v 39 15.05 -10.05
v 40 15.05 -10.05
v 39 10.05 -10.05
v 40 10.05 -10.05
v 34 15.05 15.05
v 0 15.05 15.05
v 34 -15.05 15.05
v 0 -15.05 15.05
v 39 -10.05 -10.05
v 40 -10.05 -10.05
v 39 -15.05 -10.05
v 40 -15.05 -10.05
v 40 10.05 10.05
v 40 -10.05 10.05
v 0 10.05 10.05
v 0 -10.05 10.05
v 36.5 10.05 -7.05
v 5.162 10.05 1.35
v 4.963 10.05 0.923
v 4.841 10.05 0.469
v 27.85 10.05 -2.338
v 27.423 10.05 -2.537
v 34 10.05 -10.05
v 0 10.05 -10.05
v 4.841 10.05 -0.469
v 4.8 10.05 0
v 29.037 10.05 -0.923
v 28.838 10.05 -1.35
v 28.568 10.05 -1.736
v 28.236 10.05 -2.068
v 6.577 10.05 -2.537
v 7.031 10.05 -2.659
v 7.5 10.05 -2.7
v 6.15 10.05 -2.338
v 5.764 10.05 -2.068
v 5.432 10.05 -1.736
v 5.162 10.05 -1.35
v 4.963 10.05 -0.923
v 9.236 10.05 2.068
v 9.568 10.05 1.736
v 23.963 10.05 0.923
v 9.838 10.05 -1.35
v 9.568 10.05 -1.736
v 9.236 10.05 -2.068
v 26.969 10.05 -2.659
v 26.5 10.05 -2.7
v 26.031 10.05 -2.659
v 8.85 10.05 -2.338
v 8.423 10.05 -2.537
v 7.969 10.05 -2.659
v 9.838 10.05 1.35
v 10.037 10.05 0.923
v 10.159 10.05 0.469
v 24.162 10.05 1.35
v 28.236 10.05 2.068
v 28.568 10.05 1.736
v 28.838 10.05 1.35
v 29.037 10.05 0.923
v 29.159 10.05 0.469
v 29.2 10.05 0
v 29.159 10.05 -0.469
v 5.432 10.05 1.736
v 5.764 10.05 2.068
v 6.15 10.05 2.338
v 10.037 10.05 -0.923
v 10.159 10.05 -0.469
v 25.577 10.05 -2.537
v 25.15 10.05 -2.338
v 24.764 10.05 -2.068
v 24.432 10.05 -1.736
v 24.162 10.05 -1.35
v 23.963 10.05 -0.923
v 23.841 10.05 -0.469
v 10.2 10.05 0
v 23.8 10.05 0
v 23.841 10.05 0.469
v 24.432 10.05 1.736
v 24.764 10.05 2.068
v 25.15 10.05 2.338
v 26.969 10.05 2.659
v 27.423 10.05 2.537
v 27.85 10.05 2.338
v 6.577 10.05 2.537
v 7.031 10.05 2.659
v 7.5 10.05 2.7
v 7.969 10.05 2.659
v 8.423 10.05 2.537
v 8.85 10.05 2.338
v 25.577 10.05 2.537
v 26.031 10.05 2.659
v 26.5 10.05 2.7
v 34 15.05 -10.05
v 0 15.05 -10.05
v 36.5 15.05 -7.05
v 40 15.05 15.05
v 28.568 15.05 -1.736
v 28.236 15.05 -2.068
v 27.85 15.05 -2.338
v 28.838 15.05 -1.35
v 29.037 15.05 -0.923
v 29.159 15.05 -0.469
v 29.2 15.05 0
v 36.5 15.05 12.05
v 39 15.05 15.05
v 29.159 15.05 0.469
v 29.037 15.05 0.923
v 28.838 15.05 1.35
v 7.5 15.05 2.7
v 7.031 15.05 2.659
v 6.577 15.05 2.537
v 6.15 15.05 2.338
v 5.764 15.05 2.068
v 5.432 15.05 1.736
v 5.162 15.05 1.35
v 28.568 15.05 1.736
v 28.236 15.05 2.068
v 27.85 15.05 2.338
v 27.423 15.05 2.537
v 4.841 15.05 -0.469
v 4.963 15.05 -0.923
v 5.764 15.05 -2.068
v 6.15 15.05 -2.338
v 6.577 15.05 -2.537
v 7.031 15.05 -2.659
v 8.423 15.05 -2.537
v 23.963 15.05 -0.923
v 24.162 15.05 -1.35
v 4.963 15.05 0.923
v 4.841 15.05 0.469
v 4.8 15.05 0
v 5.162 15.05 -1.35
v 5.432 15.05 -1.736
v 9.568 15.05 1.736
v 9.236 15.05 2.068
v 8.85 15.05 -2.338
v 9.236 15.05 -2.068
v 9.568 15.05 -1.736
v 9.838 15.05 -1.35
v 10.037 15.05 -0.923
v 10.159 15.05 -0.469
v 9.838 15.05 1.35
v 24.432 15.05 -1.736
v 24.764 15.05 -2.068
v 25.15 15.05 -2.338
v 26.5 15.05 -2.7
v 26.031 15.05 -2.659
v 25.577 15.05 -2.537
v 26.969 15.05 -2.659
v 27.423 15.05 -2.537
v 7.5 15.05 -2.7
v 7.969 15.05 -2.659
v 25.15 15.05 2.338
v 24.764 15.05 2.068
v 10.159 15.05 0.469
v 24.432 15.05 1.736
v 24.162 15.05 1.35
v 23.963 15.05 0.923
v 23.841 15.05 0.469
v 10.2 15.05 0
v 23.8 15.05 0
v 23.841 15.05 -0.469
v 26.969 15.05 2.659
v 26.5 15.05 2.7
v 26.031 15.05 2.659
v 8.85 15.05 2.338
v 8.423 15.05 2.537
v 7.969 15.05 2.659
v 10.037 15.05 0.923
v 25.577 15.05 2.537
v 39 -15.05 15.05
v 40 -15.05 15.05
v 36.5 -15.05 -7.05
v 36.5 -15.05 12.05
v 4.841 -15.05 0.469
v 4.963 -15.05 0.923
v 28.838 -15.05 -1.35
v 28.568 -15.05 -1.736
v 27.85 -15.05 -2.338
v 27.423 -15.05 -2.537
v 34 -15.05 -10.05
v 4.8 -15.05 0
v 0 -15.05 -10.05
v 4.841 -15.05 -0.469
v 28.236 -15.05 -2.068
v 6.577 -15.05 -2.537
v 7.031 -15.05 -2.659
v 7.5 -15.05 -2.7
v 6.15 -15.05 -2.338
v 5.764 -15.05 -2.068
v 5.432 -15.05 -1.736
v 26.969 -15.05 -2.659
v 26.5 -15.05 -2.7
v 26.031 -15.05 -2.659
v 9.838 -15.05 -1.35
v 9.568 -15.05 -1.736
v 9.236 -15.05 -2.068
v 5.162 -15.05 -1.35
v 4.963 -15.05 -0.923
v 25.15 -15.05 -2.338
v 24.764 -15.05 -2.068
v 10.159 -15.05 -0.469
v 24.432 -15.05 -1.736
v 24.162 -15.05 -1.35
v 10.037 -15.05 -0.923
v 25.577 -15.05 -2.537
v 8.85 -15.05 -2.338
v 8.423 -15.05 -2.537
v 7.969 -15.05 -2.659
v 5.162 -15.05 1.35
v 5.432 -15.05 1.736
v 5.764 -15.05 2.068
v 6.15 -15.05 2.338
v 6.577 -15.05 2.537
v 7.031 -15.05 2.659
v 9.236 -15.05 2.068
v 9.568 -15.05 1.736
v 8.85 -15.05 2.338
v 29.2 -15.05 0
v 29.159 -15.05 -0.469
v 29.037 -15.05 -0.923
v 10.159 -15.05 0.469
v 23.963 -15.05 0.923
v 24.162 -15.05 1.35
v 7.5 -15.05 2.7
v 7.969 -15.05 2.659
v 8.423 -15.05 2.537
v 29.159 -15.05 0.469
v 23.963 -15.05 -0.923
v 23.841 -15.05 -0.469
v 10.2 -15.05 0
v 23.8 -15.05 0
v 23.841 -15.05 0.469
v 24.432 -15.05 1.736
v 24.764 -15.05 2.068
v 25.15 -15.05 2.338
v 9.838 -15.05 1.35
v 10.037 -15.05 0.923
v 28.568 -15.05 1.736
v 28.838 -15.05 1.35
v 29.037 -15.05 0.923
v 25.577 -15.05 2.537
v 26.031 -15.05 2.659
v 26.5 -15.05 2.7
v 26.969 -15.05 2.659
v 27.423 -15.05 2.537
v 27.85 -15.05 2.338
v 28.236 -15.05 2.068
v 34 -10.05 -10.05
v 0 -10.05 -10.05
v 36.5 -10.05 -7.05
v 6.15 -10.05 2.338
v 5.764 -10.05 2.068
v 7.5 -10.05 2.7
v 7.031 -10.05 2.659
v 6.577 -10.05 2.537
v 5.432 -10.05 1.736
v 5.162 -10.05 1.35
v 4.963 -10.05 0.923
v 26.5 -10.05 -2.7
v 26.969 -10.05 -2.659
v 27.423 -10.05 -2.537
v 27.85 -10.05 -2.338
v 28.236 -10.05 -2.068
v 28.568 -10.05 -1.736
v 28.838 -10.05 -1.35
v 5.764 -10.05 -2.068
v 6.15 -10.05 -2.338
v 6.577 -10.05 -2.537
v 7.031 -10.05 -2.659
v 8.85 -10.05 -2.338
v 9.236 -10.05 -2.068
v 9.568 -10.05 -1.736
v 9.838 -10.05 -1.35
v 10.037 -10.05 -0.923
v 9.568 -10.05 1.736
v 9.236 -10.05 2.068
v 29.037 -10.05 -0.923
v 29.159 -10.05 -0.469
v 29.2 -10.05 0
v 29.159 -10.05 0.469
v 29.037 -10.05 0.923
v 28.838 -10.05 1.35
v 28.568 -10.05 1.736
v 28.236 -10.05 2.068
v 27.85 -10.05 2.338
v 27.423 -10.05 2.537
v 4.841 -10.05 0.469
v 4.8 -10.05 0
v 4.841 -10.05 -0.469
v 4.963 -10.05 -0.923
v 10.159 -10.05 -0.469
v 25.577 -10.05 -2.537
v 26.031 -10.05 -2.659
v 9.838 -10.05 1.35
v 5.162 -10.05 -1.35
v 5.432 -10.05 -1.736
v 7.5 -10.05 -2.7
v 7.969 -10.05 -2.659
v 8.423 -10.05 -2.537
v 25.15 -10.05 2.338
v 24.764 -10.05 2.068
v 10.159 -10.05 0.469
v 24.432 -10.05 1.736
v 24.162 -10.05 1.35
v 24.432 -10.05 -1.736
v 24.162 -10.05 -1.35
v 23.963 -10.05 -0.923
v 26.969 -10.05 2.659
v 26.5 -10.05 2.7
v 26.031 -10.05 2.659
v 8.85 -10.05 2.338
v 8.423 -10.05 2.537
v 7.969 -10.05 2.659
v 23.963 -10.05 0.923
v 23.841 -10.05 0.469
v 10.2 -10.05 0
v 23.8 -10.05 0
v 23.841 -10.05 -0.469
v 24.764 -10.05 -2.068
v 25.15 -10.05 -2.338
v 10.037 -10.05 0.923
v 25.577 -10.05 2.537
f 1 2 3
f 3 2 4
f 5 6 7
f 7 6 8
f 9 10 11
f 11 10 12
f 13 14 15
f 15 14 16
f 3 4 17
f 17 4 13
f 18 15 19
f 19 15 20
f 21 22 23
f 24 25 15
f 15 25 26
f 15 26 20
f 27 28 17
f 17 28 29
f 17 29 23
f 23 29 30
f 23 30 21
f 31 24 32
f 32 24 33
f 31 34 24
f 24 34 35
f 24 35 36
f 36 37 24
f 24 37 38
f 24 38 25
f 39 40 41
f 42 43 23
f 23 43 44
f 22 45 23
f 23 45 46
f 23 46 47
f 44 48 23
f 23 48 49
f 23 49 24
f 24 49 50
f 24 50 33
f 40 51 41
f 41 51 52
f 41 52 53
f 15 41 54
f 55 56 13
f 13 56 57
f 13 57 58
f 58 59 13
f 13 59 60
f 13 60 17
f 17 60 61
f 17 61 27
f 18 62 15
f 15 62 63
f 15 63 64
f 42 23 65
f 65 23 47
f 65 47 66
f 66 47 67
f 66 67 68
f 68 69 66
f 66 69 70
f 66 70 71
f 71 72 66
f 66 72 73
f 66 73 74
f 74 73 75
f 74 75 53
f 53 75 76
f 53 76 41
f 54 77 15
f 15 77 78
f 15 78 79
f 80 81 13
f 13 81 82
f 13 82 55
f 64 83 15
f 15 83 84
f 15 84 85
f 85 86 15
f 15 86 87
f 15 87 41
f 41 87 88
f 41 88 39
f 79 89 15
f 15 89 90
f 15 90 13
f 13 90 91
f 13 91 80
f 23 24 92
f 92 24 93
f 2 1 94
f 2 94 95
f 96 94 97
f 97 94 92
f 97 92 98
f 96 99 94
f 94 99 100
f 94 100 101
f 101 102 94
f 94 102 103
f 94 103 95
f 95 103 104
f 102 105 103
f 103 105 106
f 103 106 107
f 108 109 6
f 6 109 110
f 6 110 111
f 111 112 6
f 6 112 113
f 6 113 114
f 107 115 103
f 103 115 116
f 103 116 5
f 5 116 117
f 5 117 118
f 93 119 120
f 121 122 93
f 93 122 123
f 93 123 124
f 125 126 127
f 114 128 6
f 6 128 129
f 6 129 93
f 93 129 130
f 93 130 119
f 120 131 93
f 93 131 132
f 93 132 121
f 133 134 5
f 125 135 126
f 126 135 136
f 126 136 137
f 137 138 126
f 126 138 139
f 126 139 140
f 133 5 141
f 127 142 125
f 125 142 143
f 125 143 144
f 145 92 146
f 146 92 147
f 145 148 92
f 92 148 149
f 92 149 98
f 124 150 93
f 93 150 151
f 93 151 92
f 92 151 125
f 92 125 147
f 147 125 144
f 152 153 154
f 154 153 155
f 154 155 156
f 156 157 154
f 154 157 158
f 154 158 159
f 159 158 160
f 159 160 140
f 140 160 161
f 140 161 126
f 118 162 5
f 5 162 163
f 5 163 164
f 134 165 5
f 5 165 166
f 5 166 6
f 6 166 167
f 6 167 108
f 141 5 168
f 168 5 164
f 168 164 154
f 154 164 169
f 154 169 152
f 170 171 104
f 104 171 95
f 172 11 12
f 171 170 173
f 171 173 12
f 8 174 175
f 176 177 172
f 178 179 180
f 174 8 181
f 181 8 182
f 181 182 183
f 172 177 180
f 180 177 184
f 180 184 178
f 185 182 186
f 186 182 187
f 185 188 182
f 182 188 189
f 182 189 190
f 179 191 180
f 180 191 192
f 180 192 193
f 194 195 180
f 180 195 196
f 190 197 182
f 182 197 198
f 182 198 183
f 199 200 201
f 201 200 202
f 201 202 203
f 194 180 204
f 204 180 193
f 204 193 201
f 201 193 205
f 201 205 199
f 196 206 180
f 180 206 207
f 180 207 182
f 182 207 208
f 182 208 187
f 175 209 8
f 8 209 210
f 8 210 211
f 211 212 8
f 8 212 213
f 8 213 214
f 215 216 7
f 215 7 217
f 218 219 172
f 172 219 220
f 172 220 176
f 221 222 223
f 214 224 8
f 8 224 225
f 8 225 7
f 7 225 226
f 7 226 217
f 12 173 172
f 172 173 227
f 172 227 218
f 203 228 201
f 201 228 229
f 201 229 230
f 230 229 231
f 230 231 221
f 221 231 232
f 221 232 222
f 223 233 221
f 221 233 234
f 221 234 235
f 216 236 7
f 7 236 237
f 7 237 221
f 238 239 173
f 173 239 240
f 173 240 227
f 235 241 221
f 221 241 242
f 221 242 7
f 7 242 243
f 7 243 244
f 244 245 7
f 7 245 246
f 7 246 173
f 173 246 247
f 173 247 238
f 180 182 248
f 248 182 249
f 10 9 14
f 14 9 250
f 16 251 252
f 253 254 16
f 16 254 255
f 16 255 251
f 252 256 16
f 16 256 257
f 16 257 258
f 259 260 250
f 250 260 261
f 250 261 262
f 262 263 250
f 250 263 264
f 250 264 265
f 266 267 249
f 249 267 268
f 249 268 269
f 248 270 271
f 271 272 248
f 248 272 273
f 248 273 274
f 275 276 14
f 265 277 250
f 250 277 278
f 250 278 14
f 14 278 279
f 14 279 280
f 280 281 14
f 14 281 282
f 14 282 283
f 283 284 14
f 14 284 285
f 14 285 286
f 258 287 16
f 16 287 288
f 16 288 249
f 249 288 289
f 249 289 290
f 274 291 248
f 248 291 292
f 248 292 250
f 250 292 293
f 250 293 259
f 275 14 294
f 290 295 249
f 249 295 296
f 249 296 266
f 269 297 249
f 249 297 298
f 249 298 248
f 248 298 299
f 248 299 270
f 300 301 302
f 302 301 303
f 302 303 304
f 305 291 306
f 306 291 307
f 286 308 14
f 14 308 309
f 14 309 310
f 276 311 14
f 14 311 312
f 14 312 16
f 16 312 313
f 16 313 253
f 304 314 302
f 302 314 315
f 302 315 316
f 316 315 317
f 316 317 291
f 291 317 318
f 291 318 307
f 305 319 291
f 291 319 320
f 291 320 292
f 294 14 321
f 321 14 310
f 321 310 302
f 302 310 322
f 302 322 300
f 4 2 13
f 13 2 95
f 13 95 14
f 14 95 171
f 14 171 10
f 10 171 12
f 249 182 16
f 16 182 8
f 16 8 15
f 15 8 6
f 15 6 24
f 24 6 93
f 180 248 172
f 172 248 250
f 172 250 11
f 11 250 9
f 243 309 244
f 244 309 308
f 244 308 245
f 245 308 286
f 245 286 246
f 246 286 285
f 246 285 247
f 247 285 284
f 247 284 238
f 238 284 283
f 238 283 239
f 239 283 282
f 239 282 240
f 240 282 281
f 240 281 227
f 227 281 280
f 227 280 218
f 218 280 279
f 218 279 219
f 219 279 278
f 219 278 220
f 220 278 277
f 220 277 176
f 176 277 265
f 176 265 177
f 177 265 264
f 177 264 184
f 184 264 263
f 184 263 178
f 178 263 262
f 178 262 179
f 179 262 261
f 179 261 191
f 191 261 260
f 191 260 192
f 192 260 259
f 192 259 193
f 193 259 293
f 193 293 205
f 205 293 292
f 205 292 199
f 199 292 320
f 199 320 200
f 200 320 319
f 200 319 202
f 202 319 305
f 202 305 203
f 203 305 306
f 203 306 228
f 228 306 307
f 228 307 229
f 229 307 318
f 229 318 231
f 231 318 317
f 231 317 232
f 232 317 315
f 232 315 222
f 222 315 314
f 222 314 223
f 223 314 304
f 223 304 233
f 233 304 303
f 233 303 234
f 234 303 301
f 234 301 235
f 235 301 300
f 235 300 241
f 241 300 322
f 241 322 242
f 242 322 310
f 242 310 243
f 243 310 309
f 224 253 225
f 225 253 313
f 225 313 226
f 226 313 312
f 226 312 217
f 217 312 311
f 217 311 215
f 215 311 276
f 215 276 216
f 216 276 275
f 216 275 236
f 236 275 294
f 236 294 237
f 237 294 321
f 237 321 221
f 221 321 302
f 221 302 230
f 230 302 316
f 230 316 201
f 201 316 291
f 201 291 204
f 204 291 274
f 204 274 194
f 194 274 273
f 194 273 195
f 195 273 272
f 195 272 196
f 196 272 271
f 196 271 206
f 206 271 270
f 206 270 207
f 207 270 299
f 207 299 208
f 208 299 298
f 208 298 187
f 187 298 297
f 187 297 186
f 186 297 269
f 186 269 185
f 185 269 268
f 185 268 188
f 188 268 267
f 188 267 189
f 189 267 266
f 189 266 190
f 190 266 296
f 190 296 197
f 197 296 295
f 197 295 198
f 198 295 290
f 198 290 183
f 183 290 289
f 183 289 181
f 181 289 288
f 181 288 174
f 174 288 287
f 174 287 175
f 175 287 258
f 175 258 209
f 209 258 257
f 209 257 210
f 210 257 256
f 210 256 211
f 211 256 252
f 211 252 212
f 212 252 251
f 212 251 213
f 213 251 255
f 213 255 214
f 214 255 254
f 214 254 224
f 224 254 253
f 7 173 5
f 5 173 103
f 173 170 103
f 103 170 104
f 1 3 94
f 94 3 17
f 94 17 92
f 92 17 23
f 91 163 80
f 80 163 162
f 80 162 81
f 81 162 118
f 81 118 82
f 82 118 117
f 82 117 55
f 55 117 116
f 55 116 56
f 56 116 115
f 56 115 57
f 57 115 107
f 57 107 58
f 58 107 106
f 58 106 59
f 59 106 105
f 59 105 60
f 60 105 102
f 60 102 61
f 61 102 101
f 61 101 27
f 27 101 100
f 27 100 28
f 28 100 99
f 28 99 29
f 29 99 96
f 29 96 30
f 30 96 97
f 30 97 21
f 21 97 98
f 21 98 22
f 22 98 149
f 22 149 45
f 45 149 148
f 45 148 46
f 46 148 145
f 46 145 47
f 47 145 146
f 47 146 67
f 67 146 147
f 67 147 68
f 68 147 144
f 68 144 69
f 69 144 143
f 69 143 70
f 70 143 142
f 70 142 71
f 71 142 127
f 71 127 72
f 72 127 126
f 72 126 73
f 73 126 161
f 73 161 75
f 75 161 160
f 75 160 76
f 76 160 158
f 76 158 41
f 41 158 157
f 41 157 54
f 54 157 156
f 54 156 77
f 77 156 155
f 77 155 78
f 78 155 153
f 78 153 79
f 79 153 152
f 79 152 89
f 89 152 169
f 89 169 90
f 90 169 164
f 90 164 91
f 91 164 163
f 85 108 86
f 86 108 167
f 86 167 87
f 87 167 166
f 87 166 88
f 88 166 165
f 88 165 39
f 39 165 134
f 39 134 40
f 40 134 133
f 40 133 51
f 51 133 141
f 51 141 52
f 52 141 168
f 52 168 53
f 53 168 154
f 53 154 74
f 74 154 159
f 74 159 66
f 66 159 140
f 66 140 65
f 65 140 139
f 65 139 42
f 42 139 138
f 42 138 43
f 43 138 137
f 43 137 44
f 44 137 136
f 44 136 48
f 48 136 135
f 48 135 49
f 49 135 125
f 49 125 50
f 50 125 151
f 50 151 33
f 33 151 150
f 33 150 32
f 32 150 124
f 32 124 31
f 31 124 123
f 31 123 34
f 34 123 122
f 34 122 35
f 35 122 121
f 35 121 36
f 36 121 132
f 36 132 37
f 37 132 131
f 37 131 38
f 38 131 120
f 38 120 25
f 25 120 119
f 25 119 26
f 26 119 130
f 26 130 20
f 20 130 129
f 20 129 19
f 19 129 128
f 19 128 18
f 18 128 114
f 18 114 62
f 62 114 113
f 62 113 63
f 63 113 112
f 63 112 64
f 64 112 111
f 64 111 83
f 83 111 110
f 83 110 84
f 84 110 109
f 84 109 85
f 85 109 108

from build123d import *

# Parameters (mm, degrees)
BOSS_EXTRUDE1_DEPTH = 40
SKETCH5_R           = 2.7
CUT_EXTRUDE1_DEPTH  = 31.1


with BuildPart() as part:
    # Sketch1 → Boss-Extrude1 (new body)
    with BuildSketch(Plane(origin=(0, 0, 0), x_dir=(0, 0, -1), z_dir=(1, 0, 0))):
        Polygon((10.05, -10.05), (10.05, -15.05), (-15.05, -15.05), (-15.05, 15.05), (10.05, 15.05), (10.05, 10.05), (-10.05, 10.05), (-10.05, -10.05), align=None)
    extrude(amount=BOSS_EXTRUDE1_DEPTH)

    # Sketch5 → Cut-Extrude1 (cut, through all)
    with BuildSketch(Plane(origin=(0, 15.05, 0), x_dir=(1, 0, 0), z_dir=(0, 1, 0))):
        with Locations((7.5, 0)):
            Circle(SKETCH5_R)
        with Locations((26.5, 0)):
            Circle(SKETCH5_R)
        Polygon((34, -15.05), (36.5, -12.05), (39, -15.05), align=None)
        Polygon((36.5, 7.05), (39, 10.05), (34, 10.05), align=None)
    extrude(amount=-CUT_EXTRUDE1_DEPTH, mode=Mode.SUBTRACT)


solid = part.part
